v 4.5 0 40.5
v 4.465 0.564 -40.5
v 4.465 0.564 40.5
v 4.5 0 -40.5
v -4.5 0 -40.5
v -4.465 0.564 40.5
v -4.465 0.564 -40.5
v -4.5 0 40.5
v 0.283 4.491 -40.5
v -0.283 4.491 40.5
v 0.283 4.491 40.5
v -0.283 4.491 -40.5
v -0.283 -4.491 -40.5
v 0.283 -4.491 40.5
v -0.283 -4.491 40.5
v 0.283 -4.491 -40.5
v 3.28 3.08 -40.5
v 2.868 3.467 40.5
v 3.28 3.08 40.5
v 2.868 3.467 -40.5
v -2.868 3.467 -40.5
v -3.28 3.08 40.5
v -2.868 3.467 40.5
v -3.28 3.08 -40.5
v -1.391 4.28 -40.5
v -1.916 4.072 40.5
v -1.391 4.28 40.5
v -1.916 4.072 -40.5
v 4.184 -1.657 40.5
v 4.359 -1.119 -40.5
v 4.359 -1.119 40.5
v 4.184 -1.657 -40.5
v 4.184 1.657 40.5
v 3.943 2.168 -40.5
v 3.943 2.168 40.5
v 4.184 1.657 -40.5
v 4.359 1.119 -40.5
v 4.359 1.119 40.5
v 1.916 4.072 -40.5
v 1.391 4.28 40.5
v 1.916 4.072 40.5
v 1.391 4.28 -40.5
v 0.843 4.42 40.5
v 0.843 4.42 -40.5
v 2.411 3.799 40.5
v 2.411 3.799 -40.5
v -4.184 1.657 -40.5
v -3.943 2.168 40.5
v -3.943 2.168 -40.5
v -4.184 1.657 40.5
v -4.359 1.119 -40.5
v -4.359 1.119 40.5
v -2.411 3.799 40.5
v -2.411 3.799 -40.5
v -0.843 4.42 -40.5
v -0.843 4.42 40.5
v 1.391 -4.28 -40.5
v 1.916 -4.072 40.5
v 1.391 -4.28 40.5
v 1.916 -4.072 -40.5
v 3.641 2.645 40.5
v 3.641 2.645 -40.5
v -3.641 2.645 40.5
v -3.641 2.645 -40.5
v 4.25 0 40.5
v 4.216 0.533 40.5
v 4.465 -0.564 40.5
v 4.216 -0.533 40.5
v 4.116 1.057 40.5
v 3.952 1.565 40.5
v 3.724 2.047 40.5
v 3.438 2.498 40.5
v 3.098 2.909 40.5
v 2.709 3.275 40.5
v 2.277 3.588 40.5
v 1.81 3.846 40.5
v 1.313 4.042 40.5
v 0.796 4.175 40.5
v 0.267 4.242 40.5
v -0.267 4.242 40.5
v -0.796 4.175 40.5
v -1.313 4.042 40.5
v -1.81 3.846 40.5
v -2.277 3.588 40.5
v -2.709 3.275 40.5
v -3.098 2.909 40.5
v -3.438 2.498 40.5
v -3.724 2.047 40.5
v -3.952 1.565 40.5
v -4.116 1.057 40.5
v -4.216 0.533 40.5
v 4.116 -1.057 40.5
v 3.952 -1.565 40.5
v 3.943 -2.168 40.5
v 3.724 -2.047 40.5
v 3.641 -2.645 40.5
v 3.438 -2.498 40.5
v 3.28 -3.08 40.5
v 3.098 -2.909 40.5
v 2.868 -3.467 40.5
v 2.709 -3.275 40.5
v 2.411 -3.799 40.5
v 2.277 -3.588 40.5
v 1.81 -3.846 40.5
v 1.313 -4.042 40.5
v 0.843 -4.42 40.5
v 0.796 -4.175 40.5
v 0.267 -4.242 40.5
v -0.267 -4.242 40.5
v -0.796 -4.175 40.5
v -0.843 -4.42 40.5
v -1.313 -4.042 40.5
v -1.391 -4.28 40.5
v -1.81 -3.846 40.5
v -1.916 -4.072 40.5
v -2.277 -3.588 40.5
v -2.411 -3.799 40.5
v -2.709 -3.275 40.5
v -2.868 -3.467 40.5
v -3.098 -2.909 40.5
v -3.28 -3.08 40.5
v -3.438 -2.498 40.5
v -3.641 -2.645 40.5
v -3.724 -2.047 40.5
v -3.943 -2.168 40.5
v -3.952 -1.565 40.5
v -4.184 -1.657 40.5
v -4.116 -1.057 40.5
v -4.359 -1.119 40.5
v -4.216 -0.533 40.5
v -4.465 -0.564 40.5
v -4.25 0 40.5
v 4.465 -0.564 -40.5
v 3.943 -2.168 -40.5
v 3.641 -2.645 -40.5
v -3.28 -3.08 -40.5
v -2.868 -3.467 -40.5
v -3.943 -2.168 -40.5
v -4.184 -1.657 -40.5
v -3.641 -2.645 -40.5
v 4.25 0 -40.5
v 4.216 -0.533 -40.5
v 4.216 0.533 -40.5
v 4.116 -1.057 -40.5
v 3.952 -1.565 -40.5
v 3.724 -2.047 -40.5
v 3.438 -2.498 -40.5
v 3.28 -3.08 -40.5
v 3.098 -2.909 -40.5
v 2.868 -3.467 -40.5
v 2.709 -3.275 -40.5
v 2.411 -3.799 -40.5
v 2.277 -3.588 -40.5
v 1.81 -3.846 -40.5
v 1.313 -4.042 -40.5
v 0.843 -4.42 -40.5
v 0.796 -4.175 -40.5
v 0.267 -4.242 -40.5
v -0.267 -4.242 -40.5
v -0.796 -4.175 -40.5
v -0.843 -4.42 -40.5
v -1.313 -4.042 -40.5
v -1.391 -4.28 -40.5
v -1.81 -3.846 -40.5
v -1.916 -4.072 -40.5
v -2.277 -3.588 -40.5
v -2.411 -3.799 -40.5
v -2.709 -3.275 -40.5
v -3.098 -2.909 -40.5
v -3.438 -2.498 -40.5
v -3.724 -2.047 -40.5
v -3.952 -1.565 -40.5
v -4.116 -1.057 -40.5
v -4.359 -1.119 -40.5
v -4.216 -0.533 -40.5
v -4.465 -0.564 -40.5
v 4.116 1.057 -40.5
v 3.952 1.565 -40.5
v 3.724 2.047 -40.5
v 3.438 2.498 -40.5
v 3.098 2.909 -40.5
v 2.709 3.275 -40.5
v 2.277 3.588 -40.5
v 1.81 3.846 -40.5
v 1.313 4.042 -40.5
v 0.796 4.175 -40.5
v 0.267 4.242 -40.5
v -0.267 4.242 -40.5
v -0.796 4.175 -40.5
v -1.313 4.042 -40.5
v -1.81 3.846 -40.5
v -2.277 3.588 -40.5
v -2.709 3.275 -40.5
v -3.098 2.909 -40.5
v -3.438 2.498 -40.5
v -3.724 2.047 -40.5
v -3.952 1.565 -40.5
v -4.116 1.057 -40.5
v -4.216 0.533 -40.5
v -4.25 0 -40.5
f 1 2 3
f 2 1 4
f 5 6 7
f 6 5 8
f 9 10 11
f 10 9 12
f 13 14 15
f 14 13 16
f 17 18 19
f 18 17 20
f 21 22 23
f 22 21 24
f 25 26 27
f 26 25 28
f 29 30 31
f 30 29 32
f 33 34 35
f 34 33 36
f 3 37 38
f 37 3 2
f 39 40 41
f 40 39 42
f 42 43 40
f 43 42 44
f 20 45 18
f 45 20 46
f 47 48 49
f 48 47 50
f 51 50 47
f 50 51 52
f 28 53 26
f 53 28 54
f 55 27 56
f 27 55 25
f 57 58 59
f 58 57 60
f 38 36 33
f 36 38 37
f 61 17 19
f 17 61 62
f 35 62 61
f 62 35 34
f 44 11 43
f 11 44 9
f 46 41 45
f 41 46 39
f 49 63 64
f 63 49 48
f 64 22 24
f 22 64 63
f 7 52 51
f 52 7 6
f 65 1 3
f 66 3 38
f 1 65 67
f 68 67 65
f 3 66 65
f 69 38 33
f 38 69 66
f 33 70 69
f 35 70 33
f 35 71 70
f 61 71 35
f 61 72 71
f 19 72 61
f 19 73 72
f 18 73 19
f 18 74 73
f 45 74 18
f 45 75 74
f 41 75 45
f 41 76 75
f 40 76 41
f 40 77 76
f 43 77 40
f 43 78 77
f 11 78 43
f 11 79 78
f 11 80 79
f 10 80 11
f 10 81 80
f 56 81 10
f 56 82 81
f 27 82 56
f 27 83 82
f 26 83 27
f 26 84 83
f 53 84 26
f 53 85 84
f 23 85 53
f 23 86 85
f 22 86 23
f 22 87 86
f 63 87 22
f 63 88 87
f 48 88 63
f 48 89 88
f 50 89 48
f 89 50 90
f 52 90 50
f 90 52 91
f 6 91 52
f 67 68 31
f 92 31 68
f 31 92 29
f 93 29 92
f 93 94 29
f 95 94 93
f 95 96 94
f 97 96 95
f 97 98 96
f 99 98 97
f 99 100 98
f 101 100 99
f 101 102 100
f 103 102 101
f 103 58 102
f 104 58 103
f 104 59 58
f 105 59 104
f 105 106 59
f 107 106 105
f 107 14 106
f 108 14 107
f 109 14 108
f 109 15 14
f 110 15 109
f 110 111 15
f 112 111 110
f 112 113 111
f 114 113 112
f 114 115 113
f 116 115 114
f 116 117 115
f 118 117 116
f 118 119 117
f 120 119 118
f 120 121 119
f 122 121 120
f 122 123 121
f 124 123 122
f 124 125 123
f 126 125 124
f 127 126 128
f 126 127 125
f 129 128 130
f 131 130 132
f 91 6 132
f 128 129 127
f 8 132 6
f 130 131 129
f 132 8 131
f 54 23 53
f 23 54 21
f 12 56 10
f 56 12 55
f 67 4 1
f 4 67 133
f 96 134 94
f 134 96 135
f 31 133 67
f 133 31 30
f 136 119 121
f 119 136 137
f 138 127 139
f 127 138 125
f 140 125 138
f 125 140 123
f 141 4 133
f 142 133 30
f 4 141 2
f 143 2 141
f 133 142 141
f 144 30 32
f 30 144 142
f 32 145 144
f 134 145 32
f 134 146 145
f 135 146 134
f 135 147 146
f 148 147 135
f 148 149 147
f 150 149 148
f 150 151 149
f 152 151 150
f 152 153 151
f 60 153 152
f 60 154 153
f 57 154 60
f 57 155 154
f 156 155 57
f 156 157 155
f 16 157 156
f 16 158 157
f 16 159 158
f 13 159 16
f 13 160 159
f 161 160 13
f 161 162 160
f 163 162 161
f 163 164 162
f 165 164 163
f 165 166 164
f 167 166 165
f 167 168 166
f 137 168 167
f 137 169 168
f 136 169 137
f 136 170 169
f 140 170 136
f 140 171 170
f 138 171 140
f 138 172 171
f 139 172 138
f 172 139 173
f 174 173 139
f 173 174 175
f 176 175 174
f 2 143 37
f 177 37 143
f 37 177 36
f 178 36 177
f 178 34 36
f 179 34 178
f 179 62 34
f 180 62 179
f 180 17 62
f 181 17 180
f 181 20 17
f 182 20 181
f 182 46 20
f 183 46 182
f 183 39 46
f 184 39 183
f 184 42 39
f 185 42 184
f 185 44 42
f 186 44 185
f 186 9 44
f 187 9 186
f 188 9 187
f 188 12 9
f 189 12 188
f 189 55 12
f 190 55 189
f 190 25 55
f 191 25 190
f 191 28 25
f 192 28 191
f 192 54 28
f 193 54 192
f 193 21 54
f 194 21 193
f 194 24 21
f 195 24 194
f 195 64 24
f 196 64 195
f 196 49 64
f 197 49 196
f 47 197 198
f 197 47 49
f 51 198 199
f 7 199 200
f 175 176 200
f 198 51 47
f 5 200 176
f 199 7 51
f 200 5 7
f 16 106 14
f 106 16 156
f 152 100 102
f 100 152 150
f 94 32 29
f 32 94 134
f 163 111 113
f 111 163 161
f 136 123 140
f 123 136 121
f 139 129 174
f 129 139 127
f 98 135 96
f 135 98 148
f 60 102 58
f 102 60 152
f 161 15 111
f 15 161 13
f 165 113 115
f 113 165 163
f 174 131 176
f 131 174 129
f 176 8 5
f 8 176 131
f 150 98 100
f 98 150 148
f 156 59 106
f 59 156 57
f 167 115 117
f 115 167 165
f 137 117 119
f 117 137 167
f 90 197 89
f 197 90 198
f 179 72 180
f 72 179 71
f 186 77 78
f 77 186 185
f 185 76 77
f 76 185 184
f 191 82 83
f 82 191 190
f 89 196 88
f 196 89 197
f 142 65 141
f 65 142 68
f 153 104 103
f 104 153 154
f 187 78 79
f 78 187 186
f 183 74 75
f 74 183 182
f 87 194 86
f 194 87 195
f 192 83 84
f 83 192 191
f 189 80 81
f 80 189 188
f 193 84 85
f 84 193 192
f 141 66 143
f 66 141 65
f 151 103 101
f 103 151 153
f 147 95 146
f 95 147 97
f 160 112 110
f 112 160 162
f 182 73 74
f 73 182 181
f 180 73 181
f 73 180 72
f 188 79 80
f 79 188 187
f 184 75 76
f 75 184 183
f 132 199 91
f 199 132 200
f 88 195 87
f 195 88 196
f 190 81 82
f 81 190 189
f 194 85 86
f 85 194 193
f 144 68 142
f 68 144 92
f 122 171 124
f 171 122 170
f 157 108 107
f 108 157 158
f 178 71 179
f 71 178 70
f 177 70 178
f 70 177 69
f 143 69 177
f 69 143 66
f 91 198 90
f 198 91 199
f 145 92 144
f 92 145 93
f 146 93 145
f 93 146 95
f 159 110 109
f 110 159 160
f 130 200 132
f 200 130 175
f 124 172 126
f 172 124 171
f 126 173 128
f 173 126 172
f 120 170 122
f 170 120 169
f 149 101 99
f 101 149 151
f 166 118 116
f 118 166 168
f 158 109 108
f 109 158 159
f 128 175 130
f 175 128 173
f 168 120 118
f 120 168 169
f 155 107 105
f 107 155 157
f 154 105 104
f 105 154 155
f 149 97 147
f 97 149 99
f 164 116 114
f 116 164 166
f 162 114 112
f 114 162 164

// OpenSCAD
$fn = 50;


difference() {
	union() {
		translate(v = [0, 0, -40.5000000000]) {
			cylinder(h = 81, r = 4.5000000000);
		}
	}
	union() {
		translate(v = [0, 0, -100.0000000000]) {
			cylinder(h = 200, r = 4.2500000000);
		}
	}
}
